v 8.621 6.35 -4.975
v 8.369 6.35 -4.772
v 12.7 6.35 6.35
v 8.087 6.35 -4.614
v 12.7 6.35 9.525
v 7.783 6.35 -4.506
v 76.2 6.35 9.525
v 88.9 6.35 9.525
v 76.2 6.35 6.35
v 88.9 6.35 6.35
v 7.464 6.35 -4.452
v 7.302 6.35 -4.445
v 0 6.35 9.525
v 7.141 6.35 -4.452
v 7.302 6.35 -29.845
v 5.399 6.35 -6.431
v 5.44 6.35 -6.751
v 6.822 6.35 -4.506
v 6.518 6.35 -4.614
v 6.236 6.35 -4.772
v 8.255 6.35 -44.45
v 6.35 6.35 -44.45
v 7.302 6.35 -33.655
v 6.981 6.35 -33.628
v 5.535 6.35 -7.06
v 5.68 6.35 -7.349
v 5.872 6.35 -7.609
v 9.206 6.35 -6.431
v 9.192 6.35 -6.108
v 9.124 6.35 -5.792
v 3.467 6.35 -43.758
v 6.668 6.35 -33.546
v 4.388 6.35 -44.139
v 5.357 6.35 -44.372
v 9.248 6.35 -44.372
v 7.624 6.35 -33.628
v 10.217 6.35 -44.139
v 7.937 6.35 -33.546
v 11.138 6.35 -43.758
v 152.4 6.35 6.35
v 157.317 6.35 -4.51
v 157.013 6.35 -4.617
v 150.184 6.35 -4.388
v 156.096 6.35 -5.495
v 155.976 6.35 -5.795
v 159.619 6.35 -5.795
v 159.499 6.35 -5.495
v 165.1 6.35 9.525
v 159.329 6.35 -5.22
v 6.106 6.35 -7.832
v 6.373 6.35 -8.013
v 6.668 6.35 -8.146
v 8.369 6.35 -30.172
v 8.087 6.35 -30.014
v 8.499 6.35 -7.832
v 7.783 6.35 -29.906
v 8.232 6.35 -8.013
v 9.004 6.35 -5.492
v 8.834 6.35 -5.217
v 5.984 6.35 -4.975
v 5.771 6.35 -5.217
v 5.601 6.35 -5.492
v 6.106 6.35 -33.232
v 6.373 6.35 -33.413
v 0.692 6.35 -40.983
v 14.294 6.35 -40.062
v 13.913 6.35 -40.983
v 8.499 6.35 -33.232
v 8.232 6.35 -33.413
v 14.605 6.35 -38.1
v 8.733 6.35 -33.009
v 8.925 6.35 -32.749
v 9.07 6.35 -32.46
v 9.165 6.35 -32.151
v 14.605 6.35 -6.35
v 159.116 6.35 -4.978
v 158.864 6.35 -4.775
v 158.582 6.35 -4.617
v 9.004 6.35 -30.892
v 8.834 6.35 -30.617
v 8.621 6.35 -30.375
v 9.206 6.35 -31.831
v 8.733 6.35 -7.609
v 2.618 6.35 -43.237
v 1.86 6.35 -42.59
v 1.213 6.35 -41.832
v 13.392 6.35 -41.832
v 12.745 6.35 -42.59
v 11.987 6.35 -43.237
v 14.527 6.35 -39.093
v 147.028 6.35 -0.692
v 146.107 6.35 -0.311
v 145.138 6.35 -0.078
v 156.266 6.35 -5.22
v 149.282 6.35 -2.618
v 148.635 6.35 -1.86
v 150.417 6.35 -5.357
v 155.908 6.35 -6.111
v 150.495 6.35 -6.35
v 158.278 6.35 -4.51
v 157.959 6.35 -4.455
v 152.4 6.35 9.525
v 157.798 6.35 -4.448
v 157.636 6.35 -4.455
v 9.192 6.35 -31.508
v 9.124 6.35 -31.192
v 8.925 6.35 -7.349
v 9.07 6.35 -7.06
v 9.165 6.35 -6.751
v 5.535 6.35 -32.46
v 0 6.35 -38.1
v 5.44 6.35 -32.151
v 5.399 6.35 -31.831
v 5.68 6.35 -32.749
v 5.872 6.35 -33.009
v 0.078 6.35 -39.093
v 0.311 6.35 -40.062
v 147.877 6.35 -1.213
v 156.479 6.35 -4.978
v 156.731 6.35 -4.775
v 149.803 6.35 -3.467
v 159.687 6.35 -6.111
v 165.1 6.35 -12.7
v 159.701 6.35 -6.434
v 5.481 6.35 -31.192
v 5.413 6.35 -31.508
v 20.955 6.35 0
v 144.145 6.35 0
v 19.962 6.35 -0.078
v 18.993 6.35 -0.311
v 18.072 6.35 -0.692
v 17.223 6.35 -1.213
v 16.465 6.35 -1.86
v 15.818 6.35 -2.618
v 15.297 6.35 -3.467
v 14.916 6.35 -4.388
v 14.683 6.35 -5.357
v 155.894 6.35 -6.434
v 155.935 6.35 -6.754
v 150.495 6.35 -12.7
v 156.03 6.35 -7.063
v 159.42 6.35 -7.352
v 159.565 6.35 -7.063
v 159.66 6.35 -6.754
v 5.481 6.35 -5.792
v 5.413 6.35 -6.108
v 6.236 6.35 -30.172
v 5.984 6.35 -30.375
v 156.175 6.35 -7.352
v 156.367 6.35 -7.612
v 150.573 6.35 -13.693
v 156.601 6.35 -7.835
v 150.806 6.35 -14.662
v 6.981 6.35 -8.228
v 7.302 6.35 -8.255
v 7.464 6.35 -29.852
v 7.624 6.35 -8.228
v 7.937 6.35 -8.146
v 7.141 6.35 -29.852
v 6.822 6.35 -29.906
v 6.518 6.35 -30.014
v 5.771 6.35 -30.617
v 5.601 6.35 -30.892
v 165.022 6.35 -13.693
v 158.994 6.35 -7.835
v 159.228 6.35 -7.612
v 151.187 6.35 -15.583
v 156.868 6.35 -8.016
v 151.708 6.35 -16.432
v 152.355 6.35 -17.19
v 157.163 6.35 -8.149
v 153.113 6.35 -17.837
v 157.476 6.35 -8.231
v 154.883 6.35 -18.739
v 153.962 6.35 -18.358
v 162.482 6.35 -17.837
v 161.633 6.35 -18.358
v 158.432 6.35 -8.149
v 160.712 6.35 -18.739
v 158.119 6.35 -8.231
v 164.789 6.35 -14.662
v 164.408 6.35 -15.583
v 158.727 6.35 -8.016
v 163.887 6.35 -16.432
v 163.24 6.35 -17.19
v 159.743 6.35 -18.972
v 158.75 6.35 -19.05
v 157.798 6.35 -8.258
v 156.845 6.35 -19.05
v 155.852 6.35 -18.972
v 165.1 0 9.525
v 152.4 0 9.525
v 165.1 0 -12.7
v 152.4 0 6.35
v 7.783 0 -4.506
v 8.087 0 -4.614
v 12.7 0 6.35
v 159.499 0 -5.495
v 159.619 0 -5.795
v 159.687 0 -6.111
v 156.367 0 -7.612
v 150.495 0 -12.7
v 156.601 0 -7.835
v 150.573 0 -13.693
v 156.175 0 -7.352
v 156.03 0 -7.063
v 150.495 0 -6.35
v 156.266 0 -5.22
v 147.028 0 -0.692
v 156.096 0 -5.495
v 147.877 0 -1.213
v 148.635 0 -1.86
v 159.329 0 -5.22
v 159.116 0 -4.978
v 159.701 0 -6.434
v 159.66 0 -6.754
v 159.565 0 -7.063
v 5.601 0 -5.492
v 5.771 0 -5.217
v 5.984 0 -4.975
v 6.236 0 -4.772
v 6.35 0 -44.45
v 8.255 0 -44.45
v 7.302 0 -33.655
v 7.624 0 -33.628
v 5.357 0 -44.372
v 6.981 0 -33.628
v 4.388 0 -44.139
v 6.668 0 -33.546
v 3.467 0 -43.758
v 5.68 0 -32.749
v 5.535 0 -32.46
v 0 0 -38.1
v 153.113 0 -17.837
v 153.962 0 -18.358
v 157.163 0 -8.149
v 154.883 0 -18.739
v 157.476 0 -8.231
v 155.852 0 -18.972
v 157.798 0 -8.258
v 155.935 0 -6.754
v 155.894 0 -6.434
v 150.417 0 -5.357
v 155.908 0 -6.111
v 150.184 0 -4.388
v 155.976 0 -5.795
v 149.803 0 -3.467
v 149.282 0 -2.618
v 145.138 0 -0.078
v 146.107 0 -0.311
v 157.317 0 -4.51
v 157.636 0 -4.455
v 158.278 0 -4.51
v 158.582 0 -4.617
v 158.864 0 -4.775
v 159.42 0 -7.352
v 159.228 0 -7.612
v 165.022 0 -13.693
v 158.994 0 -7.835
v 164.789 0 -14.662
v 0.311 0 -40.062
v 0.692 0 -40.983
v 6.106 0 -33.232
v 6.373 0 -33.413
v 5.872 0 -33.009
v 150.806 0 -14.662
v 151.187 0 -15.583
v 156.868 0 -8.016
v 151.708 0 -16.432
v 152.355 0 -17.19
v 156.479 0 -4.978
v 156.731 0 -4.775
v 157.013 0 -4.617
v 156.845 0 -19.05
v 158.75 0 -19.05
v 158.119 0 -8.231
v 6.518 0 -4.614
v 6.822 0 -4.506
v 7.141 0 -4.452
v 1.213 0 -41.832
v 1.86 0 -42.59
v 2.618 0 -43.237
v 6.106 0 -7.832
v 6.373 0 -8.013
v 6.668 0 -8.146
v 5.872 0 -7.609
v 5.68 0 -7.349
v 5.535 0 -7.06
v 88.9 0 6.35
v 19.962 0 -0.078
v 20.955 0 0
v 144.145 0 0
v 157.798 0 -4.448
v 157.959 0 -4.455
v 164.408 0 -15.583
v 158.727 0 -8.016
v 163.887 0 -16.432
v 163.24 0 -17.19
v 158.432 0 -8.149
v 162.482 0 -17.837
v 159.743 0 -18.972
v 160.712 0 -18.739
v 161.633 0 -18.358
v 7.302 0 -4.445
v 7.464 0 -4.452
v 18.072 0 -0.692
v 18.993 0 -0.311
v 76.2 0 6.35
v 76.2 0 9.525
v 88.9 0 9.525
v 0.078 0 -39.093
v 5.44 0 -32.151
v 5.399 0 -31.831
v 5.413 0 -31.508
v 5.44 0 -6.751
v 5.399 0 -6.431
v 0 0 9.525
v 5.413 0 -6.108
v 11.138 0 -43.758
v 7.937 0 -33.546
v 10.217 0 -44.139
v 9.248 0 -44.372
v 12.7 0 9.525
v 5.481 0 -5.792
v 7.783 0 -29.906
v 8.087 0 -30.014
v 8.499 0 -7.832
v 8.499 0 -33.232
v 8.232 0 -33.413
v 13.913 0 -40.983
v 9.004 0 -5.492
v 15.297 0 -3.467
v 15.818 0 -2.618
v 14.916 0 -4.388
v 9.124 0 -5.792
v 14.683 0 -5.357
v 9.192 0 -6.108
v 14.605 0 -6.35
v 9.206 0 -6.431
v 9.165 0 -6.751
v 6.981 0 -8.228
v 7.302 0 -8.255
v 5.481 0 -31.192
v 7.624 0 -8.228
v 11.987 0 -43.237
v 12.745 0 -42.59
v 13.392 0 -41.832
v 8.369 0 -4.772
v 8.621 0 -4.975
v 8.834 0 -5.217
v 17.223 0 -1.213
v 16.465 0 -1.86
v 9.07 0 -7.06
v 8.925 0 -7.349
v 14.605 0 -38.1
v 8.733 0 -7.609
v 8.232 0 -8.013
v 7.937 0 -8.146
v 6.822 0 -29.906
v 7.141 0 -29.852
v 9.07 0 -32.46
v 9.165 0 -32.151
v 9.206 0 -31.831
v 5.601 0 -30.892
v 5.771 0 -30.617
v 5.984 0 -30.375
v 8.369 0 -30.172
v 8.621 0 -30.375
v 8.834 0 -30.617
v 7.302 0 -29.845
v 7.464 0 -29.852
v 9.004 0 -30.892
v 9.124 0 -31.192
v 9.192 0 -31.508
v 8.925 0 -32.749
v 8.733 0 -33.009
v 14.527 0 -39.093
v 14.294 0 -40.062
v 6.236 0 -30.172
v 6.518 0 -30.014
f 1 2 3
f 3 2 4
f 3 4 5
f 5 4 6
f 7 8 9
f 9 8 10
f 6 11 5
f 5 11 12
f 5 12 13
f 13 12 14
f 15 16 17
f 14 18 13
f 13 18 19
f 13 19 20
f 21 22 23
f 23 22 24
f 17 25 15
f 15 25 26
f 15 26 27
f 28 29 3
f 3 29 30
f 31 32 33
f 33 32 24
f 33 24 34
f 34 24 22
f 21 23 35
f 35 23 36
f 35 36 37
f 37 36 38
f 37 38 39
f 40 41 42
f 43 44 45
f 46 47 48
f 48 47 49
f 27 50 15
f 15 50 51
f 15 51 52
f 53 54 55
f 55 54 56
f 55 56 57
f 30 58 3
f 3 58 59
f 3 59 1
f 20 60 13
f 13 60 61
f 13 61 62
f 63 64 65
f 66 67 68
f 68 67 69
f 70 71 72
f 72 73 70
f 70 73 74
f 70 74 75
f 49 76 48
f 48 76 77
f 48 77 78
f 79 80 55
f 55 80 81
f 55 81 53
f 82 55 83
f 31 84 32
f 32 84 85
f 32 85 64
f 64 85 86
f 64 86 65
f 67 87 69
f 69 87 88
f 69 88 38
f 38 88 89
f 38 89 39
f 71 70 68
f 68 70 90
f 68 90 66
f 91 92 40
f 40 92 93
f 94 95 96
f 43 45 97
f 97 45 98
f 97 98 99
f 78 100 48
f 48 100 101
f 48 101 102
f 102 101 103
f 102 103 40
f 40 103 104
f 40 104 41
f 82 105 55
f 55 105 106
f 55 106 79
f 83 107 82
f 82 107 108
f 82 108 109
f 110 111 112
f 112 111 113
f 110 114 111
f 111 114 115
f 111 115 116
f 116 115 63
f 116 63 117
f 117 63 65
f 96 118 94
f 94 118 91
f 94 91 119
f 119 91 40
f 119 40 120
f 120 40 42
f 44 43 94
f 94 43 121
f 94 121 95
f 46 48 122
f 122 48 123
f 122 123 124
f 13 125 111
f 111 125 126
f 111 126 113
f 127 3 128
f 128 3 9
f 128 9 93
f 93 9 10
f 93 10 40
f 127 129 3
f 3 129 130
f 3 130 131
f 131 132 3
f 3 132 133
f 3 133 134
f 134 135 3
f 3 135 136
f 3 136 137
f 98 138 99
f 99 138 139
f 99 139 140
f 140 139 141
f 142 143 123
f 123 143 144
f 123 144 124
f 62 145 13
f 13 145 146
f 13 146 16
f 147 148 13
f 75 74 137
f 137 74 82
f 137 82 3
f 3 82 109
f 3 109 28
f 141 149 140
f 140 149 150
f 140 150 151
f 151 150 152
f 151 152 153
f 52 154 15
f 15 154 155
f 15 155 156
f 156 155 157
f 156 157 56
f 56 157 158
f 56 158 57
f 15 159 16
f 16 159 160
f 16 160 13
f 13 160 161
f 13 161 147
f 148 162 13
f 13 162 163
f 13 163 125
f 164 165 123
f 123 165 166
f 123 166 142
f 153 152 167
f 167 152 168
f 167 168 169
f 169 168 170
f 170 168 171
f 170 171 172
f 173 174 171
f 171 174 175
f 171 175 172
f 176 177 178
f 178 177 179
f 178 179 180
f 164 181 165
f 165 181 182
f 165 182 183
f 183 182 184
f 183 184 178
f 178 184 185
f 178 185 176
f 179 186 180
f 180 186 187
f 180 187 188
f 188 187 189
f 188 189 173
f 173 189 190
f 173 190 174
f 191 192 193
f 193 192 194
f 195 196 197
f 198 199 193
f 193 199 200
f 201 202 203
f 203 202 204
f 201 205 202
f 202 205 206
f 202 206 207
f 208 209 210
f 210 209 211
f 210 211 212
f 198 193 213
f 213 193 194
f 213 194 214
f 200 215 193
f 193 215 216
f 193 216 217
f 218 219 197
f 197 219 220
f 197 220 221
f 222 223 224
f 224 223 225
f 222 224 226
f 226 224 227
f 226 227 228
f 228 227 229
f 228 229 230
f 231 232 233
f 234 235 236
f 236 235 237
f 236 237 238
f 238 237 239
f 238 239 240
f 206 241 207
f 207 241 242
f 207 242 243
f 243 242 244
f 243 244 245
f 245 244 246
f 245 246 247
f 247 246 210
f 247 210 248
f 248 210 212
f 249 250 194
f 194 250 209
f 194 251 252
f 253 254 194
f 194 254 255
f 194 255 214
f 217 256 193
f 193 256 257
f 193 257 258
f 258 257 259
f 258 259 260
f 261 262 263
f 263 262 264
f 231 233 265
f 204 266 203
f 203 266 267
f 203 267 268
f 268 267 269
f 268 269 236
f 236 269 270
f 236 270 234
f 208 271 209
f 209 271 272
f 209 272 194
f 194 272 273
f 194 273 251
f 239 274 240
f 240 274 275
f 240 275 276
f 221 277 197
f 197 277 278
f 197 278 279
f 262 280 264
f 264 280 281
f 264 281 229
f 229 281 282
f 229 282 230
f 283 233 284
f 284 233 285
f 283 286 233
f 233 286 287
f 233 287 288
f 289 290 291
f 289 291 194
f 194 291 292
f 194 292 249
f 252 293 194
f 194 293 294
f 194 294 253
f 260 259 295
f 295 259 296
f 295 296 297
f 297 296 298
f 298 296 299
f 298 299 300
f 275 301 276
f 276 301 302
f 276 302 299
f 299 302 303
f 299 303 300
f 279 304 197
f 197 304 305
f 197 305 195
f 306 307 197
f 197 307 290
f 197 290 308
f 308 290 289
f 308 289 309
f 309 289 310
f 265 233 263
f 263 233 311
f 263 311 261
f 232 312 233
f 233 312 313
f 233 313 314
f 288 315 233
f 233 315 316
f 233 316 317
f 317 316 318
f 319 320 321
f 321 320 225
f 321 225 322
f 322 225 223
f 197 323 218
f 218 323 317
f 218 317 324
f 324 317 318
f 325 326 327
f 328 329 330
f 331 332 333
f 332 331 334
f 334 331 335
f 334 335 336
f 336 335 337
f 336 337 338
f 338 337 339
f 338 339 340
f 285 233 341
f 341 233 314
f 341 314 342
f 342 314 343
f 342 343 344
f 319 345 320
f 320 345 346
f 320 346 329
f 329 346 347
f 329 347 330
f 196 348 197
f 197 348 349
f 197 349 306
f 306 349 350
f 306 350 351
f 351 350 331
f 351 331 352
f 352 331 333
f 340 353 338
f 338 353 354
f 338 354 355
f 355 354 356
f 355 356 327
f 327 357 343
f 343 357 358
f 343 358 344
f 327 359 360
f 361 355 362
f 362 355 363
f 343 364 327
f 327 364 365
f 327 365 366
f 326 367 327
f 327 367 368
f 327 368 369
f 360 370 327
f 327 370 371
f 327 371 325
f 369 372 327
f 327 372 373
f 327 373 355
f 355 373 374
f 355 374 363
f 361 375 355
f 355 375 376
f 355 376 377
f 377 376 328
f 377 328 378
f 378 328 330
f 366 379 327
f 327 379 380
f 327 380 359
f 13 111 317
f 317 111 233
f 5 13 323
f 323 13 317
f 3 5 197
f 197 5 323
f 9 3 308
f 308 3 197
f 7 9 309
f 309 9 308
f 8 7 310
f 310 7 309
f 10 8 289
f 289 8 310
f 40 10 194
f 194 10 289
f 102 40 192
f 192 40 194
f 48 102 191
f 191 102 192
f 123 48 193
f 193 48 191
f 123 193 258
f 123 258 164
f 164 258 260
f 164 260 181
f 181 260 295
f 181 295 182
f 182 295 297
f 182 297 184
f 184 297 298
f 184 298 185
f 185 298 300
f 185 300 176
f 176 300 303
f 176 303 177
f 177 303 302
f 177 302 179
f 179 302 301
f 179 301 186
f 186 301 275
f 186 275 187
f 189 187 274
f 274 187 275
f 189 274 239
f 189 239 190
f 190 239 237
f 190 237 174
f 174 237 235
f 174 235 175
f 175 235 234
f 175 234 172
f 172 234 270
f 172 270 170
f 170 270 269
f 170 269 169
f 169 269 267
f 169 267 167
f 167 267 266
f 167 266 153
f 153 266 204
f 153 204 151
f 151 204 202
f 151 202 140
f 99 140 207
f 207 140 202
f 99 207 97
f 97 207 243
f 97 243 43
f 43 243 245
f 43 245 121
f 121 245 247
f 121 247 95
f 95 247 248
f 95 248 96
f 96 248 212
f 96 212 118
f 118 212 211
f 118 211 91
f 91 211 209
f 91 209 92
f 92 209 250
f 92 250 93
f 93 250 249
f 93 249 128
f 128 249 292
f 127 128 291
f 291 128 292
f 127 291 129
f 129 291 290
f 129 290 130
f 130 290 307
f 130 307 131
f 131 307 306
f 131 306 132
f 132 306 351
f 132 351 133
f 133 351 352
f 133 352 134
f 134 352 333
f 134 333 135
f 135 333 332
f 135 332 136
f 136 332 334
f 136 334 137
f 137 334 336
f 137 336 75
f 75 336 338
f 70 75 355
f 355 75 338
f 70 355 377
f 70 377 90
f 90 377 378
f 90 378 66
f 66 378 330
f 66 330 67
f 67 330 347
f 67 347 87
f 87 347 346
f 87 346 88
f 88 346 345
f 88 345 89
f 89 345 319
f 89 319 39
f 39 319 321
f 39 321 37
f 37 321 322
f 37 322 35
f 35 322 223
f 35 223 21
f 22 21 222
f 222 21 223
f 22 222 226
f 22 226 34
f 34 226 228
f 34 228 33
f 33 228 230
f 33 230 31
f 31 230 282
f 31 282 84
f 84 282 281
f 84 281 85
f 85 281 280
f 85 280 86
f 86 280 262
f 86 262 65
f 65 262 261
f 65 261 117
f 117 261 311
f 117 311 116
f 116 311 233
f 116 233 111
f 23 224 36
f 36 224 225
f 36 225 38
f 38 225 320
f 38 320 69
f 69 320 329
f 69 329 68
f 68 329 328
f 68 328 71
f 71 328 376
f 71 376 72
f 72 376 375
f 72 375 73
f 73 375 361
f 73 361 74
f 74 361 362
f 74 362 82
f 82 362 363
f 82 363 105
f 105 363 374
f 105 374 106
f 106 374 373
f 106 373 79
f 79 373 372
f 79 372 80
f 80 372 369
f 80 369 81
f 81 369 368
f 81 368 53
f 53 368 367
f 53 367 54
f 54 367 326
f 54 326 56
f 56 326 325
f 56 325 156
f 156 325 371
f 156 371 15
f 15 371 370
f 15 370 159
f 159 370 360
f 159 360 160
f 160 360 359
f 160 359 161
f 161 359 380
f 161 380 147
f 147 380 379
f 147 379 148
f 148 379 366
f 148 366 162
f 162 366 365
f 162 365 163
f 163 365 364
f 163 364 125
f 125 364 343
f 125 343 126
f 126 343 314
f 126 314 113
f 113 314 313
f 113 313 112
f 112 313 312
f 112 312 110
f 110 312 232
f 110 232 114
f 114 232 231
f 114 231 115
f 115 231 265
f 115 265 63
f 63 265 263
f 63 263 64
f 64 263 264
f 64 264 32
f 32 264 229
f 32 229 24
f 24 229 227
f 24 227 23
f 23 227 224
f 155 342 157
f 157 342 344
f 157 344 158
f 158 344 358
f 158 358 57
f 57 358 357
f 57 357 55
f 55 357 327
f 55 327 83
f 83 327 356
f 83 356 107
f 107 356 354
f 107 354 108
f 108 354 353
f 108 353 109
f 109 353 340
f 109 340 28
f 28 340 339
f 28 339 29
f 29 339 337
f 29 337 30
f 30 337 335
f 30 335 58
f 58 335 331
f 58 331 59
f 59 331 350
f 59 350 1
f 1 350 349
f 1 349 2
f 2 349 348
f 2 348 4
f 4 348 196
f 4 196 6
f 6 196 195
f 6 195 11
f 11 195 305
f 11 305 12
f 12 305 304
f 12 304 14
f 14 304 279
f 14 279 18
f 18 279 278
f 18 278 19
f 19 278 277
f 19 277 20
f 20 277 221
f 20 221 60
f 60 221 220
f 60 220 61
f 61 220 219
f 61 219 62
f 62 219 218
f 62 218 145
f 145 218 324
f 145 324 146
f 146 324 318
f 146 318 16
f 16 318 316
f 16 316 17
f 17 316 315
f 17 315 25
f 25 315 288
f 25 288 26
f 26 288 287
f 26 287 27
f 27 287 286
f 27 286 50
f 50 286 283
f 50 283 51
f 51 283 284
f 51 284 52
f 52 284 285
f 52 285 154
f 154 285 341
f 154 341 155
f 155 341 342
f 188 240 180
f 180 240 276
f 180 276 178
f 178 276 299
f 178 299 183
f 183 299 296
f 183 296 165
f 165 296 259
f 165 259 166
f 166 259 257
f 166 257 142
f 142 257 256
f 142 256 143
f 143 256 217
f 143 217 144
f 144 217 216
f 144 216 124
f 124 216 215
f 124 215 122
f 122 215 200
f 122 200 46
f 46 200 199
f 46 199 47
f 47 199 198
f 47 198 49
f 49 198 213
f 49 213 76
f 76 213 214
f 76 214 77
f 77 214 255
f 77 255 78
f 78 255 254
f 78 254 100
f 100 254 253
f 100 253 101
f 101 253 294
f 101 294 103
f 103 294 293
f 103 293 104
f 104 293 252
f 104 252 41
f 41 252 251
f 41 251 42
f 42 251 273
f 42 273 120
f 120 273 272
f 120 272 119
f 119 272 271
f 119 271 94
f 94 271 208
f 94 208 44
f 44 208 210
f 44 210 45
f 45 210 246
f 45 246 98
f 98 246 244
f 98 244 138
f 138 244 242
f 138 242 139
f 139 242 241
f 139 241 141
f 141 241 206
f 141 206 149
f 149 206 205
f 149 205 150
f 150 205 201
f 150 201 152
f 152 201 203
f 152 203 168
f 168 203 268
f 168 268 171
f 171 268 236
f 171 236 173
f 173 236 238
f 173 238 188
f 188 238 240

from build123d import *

# Parameters (mm, degrees)
SKETCH1_R           = 1.905
BOSS_EXTRUDE1_DEPTH = 6.35


with BuildPart() as part:
    # Sketch1 → Boss-Extrude1 (new body)
    with BuildSketch(Plane(origin=(0, 0, 0), x_dir=(1, 0, 0), z_dir=(0, 1, 0))):
        with BuildLine():
            Line((88.9, -6.35), (152.4, -6.35))
            Line((152.4, -6.35), (152.4, -9.525))
            Line((152.4, -9.525), (165.1, -9.525))
            Line((165.1, -9.525), (165.1, -6.35))
            Line((165.1, -6.35), (165.1, 0))
            Line((165.1, 0), (165.1, 12.7))
            ThreePointArc((165.1, 12.7), (163.240128061, 17.190128061), (158.75, 19.05))
            Line((158.75, 19.05), (156.845, 19.05))
            ThreePointArc((156.845, 19.05), (152.354871939, 17.190128061), (150.495, 12.7))
            Line((150.495, 12.7), (150.495, 6.35))
            ThreePointArc((150.495, 6.35), (148.635128061, 1.859871939), (144.145, 0))
            Line((144.145, 0), (20.955, 0))
            ThreePointArc((20.955, 0), (16.464871939, 1.859871939), (14.605, 6.35))
            Line((14.605, 6.35), (14.605, 38.1))
            ThreePointArc((14.605, 38.1), (12.745128061, 42.590128061), (8.255, 44.45))
            Line((8.255, 44.45), (6.35, 44.45))
            ThreePointArc((6.35, 44.45), (1.859871939, 42.590128061), (0, 38.1))
            Line((0, 38.1), (0, 0))
            Line((0, 0), (0, -6.35))
            Line((0, -6.35), (0, -9.525))
            Line((0, -9.525), (12.7, -9.525))
            Line((12.7, -9.525), (12.7, -6.35))
            Line((12.7, -6.35), (76.2, -6.35))
            Line((76.2, -6.35), (76.2, -9.525))
            Line((76.2, -9.525), (88.9, -9.525))
            Line((88.9, -9.525), (88.9, -6.35))
        make_face()
        with Locations(Location((7.3025, 31.75, 0), (0, 0, 270))):
            Circle(SKETCH1_R, mode=Mode.SUBTRACT)
        with Locations(Location((7.3025, 6.35, 0), (0, 0, 270))):
            Circle(SKETCH1_R, mode=Mode.SUBTRACT)
        with Locations(Location((157.7975, 6.353059153, 0), (0, 0, 270))):
            Circle(SKETCH1_R, mode=Mode.SUBTRACT)
    extrude(amount=BOSS_EXTRUDE1_DEPTH)


solid = part.part
